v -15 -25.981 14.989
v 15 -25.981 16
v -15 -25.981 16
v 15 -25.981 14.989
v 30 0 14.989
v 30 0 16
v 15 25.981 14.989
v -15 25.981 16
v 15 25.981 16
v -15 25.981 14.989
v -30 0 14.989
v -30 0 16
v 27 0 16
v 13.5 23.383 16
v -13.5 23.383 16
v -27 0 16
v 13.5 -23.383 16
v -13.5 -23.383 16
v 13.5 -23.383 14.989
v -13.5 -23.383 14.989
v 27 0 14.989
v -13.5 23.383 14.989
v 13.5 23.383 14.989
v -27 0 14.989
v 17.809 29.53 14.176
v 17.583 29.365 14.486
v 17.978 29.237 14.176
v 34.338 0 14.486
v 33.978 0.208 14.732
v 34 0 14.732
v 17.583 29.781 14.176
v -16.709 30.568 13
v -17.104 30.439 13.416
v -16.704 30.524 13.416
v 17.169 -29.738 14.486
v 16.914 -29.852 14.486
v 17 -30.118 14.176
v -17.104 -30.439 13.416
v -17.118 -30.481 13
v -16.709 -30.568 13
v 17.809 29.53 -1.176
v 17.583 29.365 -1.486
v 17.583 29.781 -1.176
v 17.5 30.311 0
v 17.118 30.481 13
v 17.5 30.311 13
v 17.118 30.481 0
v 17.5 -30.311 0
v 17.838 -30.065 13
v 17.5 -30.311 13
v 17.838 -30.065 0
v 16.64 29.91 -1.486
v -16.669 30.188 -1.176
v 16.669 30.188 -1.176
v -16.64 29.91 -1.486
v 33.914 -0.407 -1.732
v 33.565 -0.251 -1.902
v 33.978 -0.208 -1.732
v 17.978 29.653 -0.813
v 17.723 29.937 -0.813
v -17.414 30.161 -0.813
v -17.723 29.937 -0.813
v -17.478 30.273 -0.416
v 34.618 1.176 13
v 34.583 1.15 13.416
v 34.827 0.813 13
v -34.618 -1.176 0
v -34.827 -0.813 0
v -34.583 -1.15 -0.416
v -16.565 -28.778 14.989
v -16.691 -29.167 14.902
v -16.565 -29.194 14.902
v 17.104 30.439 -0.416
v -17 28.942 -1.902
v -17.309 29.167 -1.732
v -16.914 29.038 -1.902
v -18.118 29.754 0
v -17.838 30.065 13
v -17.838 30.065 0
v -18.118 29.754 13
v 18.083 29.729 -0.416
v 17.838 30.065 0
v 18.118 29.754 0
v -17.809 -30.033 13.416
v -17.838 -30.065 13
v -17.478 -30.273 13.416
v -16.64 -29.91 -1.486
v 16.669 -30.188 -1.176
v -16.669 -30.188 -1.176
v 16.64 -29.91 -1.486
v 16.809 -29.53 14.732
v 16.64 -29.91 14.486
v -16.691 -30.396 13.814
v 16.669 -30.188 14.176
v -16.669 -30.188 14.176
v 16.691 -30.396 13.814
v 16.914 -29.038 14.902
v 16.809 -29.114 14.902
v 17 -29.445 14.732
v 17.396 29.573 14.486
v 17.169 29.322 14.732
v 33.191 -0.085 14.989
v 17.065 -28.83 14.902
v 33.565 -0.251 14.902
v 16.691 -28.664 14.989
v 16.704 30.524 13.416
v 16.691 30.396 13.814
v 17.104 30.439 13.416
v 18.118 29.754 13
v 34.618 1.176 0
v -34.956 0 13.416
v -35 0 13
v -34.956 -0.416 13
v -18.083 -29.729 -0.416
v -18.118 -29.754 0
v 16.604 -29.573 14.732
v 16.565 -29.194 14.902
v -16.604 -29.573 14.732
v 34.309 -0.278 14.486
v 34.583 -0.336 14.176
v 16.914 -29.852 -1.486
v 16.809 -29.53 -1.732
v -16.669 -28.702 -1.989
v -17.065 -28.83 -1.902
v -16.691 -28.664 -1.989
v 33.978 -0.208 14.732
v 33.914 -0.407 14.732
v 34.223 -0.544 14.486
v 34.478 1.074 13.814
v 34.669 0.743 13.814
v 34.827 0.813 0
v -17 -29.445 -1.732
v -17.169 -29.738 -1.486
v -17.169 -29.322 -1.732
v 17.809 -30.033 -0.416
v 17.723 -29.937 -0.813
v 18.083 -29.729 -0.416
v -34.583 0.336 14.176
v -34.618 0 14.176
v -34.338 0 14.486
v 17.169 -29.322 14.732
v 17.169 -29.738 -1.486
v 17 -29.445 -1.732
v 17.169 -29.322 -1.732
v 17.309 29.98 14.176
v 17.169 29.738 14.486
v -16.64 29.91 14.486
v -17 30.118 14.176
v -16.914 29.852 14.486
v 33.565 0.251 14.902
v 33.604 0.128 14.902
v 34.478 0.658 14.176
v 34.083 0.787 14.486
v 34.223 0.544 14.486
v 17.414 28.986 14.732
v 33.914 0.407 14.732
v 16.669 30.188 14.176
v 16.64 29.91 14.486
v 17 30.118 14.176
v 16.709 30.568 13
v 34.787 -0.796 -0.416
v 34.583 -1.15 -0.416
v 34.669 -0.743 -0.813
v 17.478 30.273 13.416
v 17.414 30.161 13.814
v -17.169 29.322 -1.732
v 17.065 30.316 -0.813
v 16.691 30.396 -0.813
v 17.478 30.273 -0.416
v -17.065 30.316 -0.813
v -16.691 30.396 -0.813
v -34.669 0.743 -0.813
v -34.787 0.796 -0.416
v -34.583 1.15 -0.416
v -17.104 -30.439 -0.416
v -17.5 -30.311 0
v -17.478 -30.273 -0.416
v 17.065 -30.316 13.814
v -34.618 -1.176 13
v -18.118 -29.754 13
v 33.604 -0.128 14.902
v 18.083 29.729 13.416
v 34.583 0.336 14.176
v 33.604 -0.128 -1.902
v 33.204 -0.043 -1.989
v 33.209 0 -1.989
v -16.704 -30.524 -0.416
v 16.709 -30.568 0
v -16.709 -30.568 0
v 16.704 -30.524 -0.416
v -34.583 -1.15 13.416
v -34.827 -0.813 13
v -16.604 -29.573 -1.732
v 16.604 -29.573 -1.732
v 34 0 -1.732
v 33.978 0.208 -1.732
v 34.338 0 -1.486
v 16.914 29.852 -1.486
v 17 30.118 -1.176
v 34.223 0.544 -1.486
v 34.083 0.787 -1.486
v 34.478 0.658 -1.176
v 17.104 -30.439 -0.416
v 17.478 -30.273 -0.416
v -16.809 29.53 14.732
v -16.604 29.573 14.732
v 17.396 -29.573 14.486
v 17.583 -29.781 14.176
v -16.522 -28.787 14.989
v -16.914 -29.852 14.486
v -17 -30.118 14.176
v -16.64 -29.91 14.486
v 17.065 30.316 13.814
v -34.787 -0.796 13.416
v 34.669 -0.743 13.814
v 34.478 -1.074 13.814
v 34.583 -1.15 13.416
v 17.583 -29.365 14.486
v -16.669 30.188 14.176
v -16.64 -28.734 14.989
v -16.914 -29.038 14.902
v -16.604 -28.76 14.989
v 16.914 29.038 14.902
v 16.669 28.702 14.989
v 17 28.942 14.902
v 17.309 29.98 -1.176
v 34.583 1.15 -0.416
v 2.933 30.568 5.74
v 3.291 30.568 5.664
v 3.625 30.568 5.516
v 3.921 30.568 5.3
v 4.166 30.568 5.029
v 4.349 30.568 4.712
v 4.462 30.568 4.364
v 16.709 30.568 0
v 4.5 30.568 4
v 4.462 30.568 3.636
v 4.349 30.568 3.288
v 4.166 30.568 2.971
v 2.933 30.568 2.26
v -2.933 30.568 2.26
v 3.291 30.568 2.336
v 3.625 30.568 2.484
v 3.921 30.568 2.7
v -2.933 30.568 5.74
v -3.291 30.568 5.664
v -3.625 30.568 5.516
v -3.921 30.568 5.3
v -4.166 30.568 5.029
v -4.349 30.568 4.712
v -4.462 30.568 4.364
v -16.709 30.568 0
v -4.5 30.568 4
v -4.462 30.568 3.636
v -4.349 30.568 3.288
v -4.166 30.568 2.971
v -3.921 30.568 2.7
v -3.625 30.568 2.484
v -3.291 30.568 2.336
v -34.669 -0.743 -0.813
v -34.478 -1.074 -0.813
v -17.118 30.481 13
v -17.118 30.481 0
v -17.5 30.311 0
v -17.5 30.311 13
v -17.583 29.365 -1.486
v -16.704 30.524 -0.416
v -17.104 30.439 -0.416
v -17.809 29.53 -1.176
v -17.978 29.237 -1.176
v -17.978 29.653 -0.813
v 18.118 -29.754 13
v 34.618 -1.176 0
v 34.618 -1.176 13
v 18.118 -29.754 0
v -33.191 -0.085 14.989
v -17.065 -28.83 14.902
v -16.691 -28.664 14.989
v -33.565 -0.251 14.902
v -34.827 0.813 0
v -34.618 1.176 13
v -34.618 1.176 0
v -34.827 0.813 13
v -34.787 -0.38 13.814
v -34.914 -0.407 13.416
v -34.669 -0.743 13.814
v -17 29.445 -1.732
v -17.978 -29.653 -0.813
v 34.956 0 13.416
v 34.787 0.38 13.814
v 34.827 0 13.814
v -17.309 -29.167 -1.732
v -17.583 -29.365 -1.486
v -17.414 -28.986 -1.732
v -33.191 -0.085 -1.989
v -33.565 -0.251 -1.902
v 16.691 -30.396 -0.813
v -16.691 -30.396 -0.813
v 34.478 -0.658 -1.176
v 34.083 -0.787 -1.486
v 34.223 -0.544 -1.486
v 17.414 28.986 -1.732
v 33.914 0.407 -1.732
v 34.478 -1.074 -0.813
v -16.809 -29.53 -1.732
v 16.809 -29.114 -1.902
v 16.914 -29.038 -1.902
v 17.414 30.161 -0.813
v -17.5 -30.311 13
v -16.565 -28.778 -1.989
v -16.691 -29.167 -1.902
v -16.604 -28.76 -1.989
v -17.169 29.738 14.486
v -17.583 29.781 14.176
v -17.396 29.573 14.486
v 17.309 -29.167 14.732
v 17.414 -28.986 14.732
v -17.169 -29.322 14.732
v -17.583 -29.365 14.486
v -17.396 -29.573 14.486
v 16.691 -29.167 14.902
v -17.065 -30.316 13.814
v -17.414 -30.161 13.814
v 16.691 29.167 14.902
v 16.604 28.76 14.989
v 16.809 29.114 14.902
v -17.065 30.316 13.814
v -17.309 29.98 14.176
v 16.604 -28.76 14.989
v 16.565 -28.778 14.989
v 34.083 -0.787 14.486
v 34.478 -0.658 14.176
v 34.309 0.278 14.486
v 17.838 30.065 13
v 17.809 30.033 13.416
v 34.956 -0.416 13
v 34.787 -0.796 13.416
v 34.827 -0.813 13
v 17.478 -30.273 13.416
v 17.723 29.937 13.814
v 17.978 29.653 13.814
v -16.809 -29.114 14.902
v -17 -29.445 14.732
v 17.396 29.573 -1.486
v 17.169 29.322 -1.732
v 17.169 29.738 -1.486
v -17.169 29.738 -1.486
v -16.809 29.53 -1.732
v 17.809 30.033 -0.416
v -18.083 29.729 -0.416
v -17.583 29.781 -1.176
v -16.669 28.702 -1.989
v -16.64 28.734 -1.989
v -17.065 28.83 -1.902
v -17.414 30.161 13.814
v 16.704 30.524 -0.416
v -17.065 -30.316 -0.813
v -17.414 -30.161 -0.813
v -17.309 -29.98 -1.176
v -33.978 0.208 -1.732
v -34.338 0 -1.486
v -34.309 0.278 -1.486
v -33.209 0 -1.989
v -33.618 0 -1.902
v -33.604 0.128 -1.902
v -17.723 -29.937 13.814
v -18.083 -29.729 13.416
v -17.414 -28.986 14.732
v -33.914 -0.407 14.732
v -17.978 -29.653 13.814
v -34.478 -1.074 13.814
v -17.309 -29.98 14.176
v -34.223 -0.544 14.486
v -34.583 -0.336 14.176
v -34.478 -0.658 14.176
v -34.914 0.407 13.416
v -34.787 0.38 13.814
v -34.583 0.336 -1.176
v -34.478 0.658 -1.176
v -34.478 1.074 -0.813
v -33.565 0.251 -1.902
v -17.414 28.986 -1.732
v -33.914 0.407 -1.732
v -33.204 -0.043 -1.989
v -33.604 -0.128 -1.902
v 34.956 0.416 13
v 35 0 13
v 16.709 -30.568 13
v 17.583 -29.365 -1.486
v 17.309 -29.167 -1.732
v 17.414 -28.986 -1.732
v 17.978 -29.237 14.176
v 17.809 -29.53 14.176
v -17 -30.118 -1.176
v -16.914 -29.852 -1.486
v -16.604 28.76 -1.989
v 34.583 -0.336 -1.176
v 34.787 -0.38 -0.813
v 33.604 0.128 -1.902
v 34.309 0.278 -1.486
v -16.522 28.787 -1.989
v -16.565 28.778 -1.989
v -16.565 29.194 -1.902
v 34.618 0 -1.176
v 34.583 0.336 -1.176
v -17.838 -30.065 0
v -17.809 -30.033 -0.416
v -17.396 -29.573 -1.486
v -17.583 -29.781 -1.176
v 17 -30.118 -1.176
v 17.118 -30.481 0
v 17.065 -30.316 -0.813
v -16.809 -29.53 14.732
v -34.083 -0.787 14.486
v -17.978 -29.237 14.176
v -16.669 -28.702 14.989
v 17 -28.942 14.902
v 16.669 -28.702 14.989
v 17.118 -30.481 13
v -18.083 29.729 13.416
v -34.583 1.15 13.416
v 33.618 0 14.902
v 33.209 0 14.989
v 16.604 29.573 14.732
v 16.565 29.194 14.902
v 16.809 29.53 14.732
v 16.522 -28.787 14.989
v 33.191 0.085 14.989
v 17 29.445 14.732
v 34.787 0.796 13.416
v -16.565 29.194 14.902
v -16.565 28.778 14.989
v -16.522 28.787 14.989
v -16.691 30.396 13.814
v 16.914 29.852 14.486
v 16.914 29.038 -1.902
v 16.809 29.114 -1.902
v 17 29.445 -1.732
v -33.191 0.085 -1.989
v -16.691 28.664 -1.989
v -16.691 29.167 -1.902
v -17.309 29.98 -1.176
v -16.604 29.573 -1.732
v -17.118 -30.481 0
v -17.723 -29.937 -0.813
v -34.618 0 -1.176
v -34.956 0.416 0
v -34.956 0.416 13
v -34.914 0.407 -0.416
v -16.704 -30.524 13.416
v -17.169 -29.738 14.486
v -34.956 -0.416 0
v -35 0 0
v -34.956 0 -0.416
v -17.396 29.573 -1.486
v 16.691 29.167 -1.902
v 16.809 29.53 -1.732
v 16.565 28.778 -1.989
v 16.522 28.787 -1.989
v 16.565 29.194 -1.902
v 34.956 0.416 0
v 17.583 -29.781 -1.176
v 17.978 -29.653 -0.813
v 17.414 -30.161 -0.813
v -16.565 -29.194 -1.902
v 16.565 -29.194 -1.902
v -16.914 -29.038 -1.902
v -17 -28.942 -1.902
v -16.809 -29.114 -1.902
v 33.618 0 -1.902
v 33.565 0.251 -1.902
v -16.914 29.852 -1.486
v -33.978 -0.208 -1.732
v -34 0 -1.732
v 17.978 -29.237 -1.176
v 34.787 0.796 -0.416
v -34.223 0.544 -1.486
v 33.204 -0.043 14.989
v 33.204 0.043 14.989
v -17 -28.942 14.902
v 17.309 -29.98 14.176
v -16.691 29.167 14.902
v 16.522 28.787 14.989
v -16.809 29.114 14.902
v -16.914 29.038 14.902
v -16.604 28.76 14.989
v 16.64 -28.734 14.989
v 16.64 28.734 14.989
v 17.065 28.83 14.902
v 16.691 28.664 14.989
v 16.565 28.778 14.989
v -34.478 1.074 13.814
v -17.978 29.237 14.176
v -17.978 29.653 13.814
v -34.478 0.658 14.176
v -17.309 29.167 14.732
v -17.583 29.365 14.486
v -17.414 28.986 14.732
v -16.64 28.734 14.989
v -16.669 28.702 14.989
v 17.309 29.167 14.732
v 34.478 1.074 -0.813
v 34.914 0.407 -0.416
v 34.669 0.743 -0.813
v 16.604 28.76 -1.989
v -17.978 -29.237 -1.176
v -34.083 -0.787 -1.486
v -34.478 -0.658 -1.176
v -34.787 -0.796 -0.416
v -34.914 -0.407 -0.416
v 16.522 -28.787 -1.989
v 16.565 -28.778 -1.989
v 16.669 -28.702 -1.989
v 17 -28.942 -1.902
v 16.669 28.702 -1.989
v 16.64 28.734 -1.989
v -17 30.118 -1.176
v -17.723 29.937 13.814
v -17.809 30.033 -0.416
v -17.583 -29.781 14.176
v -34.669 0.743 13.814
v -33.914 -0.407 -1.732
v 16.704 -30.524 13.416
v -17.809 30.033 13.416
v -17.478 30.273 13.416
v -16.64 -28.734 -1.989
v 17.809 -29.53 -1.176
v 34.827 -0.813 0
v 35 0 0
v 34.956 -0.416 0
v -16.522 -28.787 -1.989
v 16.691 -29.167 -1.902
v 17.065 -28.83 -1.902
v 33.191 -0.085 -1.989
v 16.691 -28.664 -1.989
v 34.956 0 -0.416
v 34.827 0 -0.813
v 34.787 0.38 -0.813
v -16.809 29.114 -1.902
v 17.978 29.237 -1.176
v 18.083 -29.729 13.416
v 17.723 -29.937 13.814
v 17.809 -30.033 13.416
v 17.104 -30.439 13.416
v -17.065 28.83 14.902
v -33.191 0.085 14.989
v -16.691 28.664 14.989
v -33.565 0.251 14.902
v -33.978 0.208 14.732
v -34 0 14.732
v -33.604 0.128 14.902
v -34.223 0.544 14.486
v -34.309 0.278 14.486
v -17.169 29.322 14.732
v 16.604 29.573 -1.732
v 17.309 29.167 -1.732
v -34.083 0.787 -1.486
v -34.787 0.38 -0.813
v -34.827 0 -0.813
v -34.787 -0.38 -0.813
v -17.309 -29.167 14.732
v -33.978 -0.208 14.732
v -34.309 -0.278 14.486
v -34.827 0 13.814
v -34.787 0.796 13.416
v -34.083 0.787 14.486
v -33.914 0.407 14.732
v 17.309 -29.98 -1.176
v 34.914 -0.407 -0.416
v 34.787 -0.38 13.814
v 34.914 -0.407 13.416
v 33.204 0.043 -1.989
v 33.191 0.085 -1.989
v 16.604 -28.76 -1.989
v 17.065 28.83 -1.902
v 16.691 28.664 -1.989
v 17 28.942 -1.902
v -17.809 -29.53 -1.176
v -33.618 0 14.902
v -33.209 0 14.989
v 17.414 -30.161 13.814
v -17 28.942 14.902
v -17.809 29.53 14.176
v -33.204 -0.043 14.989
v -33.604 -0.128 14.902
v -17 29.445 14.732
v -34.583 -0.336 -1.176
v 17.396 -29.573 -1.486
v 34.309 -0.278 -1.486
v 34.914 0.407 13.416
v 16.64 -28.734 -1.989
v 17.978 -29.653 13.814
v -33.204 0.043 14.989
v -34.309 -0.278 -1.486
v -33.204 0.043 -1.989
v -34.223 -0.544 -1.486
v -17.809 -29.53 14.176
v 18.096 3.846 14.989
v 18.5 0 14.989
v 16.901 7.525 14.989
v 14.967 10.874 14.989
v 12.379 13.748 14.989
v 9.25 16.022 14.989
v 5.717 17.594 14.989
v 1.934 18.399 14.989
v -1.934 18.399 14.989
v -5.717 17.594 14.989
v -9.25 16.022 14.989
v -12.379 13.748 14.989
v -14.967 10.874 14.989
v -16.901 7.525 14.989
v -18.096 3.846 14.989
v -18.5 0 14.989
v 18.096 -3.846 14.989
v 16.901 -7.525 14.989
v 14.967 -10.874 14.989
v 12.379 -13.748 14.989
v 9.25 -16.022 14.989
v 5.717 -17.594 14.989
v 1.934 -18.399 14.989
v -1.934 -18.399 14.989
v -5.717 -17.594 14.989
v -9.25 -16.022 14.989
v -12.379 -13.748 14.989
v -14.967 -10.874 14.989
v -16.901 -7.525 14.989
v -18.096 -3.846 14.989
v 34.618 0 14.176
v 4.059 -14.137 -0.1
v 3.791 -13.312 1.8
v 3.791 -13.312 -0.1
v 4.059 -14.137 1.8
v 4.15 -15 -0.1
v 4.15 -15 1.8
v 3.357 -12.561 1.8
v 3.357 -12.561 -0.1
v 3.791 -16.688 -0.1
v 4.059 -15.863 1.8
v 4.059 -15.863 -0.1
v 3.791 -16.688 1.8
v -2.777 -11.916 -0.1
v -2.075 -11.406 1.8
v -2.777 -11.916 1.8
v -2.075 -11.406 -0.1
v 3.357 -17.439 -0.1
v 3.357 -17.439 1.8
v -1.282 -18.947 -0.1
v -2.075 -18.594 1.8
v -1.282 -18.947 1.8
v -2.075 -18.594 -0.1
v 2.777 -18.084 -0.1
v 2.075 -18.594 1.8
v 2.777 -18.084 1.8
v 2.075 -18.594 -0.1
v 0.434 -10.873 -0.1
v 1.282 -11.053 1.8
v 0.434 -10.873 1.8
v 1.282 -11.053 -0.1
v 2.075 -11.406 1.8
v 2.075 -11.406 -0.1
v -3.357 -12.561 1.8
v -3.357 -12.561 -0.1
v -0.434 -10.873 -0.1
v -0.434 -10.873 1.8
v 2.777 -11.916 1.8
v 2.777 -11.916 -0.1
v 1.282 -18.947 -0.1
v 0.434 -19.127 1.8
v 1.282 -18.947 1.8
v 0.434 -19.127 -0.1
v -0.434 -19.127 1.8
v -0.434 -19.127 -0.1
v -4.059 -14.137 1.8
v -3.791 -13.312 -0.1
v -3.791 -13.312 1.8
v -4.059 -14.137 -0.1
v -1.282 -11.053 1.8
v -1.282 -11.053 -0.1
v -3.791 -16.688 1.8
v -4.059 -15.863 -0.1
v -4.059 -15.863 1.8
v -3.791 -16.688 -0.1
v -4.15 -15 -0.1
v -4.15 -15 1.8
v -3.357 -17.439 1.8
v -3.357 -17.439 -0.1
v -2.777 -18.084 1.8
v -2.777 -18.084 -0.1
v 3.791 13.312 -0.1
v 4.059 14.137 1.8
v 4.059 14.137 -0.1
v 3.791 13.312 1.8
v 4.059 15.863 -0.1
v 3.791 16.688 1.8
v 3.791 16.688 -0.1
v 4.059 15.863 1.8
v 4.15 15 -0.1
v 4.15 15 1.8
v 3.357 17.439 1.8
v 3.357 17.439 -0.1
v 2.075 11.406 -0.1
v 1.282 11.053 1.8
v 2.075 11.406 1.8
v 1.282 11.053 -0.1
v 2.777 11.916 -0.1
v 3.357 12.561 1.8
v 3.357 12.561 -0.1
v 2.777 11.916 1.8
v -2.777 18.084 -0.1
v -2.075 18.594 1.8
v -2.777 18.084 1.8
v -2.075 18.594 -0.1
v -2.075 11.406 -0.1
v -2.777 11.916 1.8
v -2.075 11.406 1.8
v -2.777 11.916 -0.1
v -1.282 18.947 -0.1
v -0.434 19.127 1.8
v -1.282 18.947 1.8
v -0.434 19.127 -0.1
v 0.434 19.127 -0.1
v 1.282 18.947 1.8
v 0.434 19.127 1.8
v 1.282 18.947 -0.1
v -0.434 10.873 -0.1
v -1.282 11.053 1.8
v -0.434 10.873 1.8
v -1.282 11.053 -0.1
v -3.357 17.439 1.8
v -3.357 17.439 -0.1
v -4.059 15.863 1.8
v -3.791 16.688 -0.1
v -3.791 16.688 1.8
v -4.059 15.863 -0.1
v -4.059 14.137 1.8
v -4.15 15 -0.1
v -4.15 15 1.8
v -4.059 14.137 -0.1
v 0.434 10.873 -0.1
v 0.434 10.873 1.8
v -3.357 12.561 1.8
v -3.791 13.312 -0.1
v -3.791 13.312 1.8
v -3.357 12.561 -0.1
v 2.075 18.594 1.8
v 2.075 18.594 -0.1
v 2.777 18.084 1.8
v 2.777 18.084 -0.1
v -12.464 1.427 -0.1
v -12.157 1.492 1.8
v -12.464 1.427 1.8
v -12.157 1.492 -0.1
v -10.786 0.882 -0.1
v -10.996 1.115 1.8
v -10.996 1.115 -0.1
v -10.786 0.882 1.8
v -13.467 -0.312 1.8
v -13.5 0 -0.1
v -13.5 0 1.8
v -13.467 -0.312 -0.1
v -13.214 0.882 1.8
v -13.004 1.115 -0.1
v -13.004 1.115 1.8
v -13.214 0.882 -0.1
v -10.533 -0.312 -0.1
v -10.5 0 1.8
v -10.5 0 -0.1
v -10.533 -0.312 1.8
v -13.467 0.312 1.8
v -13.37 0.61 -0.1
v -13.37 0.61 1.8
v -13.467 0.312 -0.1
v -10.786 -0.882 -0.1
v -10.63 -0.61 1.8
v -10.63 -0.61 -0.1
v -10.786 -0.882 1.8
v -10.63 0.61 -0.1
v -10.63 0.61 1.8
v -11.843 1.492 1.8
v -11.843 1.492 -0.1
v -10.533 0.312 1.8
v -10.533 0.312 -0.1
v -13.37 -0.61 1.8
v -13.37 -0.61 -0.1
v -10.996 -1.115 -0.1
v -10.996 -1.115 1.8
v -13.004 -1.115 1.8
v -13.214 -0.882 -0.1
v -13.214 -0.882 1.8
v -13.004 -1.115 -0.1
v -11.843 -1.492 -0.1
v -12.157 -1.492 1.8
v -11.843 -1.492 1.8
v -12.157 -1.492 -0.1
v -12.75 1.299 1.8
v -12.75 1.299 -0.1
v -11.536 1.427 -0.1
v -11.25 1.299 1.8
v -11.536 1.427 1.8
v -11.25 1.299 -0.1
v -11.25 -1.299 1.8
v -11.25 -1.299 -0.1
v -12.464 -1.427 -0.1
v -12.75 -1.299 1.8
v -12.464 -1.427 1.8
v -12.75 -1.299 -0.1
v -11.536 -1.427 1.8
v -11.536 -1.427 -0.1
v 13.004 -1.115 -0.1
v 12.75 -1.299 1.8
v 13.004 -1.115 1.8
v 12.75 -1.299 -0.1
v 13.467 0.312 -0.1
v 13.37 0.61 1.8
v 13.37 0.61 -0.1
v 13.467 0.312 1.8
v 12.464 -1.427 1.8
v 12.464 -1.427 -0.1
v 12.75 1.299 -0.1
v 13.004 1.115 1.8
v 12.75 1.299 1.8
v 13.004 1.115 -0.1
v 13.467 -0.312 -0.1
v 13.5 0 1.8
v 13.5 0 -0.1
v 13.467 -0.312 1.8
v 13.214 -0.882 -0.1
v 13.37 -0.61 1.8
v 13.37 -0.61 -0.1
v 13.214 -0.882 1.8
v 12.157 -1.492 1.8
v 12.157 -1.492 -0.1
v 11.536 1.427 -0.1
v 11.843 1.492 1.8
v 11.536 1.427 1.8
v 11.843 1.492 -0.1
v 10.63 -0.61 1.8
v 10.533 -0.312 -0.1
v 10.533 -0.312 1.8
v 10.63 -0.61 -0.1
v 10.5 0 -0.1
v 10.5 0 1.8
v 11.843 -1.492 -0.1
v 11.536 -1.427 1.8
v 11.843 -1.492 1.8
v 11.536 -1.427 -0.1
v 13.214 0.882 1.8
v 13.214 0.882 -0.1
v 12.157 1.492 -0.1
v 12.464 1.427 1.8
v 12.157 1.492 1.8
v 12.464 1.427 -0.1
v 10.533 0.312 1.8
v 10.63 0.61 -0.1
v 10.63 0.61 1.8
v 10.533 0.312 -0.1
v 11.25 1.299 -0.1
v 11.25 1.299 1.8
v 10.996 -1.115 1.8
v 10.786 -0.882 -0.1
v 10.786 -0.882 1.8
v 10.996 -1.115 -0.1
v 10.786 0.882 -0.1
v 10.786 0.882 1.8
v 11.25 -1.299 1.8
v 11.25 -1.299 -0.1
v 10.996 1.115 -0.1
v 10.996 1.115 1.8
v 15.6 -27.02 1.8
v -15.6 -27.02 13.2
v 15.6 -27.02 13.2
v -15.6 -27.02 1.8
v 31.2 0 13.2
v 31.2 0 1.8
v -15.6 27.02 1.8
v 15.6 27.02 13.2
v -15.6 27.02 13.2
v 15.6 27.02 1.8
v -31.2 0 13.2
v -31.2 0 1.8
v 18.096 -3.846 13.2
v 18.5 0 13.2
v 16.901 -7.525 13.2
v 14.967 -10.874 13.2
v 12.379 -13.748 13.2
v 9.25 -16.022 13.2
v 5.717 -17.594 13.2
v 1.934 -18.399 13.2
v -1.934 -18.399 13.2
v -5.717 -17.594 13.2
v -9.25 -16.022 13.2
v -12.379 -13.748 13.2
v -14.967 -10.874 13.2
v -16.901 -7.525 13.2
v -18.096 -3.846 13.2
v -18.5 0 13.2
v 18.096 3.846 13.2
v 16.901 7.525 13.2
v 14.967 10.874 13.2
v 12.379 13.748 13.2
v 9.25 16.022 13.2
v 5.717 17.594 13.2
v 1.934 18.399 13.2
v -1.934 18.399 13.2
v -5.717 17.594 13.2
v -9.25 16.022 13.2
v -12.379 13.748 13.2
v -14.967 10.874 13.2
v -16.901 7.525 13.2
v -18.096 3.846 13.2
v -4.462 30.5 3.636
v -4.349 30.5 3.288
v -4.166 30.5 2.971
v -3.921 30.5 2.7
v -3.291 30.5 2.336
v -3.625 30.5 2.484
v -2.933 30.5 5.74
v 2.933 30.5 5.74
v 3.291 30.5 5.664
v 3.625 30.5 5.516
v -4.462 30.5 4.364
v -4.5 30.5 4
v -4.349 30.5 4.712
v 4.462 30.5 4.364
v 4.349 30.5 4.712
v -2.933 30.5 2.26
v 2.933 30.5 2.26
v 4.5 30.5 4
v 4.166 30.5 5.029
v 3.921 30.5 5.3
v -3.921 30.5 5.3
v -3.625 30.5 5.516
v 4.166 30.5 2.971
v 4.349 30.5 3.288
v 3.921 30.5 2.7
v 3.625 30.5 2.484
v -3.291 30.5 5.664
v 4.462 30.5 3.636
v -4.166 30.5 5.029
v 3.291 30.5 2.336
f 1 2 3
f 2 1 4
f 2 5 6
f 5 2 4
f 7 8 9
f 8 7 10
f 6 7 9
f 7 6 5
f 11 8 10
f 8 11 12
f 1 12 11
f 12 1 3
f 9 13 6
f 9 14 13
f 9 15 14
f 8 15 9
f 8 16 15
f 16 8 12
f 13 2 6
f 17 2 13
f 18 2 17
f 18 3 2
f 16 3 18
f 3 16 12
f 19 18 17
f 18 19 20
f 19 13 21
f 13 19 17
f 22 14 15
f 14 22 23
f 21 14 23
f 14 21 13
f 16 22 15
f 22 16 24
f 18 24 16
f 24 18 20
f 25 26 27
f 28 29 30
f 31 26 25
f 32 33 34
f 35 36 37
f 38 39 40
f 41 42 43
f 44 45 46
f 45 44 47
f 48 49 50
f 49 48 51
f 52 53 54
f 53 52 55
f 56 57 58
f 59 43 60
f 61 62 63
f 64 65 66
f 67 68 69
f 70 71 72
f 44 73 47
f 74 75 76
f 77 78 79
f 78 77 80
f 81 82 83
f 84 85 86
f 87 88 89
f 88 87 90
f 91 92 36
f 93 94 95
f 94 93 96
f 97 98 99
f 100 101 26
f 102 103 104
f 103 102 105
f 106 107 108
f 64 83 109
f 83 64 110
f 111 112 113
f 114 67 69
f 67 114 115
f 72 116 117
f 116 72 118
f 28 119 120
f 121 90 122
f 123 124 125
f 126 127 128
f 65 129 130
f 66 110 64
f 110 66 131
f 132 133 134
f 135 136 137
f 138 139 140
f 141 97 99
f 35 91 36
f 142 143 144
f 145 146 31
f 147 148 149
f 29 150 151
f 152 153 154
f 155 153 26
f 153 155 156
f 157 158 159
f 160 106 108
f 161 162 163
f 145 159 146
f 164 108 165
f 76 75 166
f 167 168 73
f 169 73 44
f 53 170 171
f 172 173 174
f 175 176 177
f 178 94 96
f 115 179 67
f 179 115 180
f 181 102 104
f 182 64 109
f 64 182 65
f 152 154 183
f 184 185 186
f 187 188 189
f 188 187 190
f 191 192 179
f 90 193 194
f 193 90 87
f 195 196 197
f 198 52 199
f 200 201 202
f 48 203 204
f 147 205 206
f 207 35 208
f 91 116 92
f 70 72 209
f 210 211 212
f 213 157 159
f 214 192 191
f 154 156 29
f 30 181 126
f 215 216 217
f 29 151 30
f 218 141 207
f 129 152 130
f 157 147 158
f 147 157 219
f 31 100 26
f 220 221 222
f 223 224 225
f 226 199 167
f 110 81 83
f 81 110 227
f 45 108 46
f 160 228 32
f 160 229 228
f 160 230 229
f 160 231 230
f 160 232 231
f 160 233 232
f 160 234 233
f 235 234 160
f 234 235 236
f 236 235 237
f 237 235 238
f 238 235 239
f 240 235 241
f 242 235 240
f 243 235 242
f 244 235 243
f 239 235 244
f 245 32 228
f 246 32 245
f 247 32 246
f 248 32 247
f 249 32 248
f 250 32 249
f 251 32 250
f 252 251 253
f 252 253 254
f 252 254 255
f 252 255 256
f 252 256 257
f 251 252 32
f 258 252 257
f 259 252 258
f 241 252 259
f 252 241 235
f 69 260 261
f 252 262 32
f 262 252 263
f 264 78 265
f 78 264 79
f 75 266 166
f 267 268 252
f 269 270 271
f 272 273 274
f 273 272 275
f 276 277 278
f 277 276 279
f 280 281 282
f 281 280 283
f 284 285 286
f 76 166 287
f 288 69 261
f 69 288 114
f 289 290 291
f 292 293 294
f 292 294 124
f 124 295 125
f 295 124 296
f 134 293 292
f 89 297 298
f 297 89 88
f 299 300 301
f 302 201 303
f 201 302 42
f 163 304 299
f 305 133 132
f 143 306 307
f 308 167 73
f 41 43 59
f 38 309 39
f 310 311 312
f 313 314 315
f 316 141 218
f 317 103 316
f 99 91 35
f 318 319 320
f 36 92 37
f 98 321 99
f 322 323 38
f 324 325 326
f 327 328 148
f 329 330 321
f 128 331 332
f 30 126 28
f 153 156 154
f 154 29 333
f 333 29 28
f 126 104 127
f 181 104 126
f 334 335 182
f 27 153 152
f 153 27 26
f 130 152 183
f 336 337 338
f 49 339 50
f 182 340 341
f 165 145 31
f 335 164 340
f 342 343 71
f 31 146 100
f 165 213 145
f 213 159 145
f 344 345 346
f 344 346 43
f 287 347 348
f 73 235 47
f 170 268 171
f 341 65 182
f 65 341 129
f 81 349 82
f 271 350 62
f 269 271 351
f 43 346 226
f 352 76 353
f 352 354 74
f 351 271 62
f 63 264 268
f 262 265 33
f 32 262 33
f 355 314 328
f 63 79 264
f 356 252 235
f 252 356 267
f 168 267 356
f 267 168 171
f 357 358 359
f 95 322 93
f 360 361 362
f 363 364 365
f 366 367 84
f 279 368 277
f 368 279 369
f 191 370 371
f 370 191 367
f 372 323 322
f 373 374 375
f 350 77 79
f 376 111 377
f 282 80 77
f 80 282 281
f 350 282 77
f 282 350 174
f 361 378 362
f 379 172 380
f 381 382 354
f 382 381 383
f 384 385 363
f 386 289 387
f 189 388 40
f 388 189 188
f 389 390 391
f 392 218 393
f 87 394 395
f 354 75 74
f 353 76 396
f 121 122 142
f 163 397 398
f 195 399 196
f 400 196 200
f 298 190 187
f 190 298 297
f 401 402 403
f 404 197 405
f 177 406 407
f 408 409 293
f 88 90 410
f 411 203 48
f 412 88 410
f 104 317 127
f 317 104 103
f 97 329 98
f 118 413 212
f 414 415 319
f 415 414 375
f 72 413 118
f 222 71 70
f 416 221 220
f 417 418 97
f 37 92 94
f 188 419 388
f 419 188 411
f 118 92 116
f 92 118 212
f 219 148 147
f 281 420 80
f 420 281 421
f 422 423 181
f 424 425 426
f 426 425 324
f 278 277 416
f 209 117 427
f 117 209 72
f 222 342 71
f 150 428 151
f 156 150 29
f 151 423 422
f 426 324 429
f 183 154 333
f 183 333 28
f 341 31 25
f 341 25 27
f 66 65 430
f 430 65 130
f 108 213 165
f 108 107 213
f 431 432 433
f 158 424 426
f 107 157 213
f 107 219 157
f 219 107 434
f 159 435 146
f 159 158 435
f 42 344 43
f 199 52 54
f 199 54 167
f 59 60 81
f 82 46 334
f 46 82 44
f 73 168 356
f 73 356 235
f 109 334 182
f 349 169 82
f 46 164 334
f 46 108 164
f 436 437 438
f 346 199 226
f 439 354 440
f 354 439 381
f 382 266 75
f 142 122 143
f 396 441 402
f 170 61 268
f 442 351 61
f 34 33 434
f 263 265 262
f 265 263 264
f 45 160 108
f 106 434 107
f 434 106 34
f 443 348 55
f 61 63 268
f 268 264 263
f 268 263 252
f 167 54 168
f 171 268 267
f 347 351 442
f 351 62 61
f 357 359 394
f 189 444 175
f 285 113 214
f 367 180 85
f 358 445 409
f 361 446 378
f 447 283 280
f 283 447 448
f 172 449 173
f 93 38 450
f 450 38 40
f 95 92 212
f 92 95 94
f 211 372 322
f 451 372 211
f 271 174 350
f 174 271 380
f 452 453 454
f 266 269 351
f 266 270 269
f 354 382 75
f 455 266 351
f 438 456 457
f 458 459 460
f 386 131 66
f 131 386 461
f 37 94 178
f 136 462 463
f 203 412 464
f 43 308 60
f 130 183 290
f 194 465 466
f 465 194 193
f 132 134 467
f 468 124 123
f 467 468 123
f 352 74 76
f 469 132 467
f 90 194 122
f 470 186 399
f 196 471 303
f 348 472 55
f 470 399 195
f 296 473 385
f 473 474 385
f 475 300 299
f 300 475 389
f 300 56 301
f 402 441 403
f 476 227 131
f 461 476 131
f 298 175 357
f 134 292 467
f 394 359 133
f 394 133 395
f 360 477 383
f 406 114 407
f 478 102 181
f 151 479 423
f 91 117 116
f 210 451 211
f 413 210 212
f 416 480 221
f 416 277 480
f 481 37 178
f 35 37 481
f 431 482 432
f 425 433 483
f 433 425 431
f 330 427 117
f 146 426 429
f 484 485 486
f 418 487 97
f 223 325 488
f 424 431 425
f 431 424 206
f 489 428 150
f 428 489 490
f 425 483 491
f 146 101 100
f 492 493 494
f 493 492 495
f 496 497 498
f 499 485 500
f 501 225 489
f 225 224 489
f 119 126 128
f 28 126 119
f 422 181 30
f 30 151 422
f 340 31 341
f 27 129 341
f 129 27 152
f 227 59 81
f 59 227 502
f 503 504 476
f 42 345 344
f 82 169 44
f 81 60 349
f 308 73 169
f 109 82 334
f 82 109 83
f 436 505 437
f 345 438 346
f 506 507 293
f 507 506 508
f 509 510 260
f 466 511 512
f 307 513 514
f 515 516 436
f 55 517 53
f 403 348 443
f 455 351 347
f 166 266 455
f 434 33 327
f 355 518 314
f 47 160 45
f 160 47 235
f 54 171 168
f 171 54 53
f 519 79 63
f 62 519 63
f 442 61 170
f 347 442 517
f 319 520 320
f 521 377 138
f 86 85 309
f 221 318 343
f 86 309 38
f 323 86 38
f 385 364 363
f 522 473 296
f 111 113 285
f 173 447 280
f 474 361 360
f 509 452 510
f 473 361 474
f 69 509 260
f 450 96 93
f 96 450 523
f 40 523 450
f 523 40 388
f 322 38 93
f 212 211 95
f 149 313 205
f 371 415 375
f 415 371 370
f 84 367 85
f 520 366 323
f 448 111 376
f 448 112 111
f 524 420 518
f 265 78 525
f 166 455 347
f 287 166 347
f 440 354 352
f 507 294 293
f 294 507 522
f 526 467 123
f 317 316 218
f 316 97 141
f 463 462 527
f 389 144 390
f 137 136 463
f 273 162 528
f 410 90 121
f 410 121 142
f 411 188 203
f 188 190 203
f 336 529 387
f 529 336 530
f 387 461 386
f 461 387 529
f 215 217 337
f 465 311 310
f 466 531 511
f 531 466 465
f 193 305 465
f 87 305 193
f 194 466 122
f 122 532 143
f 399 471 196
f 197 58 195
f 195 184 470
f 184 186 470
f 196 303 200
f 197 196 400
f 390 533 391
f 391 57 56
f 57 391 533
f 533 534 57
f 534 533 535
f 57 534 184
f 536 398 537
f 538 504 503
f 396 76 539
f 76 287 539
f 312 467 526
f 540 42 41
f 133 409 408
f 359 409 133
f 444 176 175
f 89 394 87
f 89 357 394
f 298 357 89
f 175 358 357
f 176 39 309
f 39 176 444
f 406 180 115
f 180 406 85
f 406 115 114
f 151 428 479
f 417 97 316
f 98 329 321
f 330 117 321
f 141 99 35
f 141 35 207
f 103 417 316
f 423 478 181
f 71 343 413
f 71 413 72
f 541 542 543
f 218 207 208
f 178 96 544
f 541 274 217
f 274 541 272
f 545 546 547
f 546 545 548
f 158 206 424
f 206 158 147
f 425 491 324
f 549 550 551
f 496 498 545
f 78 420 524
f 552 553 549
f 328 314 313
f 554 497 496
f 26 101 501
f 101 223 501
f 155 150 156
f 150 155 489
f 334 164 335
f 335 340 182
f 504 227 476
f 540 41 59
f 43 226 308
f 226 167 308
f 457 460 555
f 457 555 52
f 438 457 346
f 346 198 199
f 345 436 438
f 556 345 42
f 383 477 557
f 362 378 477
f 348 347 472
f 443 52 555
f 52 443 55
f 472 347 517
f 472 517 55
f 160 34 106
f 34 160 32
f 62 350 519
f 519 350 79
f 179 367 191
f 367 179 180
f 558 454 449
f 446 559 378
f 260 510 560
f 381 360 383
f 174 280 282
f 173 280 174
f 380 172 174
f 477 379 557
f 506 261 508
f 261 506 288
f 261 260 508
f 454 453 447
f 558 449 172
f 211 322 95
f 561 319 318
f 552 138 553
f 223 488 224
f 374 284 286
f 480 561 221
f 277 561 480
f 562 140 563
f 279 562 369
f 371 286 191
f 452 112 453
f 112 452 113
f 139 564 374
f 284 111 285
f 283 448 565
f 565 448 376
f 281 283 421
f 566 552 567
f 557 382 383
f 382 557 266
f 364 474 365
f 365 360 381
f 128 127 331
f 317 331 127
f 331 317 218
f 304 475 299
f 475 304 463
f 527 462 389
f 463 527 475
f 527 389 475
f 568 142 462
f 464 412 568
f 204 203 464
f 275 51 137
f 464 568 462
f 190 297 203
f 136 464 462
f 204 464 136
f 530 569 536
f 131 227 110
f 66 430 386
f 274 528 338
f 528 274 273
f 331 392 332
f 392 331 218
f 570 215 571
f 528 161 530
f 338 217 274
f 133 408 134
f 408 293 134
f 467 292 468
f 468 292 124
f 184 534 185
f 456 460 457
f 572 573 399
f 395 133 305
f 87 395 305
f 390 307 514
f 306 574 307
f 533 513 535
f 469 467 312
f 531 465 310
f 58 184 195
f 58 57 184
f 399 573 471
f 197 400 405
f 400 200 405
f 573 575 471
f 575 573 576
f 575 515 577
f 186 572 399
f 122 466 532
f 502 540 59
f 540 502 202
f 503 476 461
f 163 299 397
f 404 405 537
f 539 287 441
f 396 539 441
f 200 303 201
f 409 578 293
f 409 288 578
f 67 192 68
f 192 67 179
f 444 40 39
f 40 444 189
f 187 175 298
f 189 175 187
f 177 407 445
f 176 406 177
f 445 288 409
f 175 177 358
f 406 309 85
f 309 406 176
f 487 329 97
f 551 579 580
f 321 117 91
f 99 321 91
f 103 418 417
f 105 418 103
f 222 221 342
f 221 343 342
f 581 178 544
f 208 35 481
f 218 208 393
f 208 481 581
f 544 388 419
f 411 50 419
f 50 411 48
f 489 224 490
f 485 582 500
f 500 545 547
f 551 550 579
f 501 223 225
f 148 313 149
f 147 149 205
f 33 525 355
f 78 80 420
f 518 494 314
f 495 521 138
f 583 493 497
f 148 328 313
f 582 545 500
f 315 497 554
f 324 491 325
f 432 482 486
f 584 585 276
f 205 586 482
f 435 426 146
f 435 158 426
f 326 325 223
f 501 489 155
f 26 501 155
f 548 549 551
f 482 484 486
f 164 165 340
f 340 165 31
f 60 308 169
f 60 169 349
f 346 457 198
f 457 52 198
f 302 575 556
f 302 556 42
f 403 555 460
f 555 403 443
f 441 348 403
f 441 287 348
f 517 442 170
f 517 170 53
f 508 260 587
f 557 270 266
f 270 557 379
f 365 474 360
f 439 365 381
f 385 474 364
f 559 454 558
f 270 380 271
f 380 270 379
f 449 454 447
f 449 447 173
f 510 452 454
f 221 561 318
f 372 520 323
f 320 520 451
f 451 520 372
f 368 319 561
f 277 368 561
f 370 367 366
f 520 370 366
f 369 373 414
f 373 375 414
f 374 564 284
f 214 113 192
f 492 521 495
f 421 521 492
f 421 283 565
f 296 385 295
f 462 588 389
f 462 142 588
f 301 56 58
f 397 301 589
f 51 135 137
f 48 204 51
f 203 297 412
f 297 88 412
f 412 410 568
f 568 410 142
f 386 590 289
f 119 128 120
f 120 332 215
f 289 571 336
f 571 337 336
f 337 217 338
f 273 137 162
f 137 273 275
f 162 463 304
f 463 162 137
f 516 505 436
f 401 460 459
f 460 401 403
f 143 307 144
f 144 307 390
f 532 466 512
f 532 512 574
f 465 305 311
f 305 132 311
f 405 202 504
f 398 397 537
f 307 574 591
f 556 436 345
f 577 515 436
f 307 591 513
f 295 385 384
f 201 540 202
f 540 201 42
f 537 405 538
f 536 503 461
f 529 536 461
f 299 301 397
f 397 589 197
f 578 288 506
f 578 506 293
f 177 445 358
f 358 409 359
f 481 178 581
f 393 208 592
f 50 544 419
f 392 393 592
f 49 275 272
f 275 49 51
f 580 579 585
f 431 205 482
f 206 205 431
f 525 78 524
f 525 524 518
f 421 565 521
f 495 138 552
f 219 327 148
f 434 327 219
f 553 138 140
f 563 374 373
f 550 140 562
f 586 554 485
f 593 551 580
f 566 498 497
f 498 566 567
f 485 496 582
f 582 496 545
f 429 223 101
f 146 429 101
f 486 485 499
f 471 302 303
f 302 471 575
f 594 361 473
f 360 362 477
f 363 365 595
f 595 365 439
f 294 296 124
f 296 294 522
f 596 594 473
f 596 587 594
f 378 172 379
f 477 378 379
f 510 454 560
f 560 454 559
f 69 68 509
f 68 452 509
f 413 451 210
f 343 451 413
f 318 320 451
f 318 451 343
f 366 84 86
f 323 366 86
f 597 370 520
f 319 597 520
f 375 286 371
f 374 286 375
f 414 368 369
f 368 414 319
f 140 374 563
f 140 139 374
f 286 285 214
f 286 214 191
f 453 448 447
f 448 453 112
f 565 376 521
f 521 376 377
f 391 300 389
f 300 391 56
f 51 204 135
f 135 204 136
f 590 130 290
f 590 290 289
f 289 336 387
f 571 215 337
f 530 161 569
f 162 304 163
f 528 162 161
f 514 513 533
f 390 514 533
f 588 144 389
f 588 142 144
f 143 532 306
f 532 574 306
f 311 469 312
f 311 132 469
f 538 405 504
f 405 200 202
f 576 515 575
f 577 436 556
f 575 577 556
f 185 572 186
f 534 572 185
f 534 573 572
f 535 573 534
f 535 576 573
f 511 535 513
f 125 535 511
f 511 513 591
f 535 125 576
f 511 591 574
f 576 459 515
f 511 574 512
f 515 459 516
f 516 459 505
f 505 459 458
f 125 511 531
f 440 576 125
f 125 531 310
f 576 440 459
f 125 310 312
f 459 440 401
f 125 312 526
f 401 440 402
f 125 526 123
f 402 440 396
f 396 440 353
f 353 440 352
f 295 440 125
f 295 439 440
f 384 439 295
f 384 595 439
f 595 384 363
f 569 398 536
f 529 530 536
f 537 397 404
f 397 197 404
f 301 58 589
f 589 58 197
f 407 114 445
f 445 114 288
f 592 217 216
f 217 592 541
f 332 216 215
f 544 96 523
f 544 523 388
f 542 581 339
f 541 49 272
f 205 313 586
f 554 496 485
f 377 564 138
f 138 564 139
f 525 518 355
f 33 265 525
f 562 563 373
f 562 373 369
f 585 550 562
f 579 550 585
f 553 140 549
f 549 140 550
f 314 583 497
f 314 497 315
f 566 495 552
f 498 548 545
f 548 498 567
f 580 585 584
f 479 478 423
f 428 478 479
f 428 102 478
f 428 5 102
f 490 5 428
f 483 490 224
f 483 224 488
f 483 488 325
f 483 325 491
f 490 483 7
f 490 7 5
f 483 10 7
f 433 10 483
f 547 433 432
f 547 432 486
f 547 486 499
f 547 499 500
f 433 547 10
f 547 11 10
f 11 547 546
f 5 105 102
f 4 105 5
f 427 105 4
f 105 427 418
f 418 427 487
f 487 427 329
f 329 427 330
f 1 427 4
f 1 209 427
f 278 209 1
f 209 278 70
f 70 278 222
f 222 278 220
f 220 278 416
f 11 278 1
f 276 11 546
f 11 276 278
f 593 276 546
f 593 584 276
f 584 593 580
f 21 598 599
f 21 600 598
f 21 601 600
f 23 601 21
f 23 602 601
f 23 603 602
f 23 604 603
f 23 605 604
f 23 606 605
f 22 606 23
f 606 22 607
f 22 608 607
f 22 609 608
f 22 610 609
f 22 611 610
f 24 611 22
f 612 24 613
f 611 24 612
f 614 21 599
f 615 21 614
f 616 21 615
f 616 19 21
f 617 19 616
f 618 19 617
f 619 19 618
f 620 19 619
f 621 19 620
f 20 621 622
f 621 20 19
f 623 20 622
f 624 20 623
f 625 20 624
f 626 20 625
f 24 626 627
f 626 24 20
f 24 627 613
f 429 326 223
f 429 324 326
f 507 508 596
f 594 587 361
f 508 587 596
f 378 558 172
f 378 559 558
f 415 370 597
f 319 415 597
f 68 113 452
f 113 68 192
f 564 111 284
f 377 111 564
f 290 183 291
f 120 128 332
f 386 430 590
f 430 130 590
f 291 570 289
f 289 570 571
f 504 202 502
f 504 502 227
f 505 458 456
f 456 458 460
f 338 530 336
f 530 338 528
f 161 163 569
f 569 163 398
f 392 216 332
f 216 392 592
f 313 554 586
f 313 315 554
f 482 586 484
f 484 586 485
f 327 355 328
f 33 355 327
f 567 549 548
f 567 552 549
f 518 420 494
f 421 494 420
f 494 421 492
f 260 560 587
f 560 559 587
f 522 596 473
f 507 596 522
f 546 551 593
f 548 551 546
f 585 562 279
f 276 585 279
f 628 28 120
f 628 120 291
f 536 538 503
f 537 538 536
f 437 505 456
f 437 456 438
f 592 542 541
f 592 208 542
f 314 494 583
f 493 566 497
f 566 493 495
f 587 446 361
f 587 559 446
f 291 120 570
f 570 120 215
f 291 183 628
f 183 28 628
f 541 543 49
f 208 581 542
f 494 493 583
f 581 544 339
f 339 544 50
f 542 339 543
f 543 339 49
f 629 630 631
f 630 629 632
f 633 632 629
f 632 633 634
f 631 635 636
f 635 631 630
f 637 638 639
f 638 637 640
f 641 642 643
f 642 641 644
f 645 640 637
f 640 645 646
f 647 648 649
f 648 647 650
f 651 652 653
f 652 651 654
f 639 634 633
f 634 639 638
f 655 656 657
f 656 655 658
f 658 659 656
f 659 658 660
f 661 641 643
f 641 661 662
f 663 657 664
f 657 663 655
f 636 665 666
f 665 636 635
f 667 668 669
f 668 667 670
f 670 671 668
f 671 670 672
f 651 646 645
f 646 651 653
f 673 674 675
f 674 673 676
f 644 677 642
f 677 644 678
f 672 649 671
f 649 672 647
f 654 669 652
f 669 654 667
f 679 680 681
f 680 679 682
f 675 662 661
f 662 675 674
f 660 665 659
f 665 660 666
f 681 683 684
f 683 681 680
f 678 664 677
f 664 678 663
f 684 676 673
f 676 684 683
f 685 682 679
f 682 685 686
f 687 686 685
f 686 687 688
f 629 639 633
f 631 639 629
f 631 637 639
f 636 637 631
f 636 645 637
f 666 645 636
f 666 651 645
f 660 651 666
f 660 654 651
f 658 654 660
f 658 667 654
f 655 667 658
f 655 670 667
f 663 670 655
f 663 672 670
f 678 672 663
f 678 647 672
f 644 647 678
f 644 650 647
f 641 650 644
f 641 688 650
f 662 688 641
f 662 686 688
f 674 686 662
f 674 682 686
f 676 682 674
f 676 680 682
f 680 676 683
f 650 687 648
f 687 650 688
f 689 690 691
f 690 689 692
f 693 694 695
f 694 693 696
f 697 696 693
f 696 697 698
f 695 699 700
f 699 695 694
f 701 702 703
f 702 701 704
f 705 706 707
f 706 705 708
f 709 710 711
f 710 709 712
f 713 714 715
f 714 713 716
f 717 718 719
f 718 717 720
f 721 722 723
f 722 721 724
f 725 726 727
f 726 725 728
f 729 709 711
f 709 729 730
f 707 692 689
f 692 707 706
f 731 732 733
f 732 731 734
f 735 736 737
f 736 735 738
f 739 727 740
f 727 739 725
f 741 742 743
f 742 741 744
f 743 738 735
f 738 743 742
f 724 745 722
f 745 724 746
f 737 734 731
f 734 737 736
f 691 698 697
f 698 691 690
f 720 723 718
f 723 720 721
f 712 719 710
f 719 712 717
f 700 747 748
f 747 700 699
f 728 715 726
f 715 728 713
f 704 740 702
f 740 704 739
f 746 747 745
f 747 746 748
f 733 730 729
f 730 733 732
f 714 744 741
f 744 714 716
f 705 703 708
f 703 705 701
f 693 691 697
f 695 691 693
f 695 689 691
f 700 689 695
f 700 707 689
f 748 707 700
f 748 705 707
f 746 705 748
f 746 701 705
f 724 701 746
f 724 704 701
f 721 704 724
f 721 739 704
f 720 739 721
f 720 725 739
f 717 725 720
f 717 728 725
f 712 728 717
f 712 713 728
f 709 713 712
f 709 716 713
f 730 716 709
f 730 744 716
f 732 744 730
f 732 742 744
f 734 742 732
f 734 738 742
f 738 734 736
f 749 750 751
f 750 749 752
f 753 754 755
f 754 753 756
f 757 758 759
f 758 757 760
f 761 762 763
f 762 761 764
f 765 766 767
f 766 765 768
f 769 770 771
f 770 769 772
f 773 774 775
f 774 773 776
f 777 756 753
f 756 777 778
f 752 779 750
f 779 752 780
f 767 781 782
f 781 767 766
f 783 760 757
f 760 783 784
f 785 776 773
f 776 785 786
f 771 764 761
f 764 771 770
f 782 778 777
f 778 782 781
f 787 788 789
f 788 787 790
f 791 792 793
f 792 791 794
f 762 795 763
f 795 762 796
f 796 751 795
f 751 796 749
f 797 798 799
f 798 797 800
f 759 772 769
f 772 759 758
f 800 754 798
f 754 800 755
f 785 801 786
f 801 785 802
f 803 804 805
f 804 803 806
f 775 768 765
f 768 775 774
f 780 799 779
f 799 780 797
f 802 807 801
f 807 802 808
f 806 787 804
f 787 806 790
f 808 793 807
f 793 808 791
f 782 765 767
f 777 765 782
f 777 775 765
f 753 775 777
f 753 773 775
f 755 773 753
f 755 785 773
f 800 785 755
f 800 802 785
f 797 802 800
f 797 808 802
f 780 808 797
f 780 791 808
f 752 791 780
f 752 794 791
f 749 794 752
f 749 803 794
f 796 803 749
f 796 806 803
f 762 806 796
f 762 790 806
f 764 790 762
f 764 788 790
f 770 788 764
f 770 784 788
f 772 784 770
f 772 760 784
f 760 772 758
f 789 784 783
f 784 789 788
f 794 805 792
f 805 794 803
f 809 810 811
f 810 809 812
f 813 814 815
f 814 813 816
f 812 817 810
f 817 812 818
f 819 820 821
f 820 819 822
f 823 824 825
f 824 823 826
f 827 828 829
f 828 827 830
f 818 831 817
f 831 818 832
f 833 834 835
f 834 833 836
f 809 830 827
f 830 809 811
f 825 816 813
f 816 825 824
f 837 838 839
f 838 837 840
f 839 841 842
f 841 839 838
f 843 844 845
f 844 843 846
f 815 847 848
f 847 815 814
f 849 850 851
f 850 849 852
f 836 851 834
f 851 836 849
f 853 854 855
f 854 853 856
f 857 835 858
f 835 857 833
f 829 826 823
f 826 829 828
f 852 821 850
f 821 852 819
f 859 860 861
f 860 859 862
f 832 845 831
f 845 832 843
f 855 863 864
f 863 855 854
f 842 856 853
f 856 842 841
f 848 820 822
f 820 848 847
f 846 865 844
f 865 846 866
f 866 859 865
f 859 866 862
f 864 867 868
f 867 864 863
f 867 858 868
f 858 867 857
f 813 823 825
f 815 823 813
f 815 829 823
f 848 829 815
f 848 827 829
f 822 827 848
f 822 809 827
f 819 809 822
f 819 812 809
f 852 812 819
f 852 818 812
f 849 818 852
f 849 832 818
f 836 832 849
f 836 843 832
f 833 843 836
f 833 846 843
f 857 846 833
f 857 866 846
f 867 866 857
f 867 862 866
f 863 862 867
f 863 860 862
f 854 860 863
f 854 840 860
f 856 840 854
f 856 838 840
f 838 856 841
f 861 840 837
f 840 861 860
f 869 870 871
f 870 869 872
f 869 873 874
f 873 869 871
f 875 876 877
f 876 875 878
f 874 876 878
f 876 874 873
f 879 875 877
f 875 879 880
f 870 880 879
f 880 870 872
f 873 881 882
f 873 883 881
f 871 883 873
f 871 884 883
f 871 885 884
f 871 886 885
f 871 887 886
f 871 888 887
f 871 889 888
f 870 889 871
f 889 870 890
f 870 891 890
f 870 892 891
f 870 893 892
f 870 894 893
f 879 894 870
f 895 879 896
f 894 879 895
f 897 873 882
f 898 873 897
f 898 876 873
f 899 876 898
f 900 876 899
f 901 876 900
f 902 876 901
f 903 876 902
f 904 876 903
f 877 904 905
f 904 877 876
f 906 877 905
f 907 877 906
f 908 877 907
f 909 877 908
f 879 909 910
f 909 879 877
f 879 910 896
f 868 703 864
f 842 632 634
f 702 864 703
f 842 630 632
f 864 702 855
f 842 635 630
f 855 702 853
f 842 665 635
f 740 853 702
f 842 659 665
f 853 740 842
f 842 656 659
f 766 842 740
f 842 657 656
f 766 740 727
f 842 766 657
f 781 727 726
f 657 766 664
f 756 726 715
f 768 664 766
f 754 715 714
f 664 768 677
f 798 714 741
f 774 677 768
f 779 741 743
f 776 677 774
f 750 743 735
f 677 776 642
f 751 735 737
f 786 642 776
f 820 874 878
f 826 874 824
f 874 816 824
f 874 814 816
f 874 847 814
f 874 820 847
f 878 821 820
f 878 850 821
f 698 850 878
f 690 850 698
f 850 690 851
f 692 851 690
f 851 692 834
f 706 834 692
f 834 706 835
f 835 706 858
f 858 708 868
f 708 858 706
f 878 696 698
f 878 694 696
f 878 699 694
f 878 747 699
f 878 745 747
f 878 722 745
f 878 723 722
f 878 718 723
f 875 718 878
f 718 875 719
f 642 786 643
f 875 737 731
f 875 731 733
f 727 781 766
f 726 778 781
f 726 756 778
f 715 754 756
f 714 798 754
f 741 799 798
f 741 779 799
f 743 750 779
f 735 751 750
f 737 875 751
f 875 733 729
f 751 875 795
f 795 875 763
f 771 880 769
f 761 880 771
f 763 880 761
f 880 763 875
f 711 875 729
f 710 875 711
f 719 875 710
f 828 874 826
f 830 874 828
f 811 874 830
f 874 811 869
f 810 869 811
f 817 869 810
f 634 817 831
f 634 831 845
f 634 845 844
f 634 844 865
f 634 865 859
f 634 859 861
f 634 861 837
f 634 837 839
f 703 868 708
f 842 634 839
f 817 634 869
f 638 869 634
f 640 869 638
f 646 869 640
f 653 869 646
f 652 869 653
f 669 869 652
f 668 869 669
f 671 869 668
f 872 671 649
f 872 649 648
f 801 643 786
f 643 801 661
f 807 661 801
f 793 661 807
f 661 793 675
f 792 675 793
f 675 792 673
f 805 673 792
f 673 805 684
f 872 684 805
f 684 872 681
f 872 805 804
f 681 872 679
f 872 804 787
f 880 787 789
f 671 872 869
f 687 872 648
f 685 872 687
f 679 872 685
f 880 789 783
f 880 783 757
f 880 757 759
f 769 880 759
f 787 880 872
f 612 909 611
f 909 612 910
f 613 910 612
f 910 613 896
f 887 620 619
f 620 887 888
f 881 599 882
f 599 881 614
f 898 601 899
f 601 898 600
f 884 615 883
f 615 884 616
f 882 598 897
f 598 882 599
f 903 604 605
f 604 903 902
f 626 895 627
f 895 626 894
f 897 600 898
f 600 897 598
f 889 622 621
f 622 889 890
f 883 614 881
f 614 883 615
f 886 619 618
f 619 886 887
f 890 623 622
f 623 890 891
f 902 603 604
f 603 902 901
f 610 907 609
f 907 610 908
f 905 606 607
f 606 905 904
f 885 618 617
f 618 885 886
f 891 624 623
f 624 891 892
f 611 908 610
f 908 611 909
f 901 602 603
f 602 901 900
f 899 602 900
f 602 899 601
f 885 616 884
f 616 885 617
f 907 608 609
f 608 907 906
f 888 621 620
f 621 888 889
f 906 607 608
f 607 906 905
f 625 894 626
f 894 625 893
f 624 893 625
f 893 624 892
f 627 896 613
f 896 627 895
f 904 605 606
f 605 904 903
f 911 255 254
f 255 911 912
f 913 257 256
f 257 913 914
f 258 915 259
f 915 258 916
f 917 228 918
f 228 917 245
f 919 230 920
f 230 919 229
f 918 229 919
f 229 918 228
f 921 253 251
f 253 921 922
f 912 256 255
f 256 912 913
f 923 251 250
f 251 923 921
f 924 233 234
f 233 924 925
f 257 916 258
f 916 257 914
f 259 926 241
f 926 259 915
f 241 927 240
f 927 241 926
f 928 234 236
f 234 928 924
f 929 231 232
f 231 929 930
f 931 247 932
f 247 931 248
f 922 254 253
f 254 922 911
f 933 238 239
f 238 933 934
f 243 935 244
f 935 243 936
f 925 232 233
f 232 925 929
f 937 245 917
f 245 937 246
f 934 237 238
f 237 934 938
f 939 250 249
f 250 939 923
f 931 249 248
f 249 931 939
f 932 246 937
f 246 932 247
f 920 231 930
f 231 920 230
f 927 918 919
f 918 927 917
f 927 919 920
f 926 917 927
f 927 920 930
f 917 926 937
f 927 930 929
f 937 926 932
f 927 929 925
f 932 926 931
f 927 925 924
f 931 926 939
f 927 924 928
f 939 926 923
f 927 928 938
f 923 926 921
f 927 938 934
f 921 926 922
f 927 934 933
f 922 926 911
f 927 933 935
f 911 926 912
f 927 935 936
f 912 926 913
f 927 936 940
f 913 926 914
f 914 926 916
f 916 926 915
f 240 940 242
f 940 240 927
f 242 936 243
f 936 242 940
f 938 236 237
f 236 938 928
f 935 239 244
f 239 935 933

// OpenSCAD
// RWC Energy Core - 方案A：六角盾牌（Hex Shield）
// 六角形外轮廓，多层结构，中心屏幕下沉凹槽
// 灵感：盾牌/勋章，层次感强
// 美羊羊🎀 设计

$fn = 30;

// === 硬件尺寸 ===
esp32_w = 25.5;  esp32_d = 18;  esp32_h = 8;
screen_round_d = 36;  // 1.28寸圆形LCD直径(含边框)
screen_rect_w = 27;  screen_rect_h = 27;  // 0.96寸OLED
battery_w = 30;  battery_d = 20;  battery_h = 5;
usbc_w = 9;  usbc_h = 3.5;
magnet_d = 8;  magnet_h = 3;  // 磁吸接口磁铁

// === 外壳参数 ===
hex_r = 35;       // 六角形外接圆半径
total_h = 15;     // 总厚度
wall = 1.8;       // 壁厚
bevel = 2;        // 倒角

// 六角形模块
module hex_prism(r, h) {
    cylinder(r=r, h=h, $fn=6);
}

// 主体
module body() {
    // 底层 - 大六角
    minkowski() {
        hex_prism(hex_r - bevel, total_h - bevel);
        sphere(r=bevel);
    }
}

// 中层装饰环（第二层六角，稍小，凸起）
module mid_ring() {
    translate([0, 0, total_h - 3])
        difference() {
            hex_prism(hex_r - 5, 4);
            translate([0, 0, -0.5])
                hex_prism(hex_r - 8, 5);
        }
}

// 屏幕凹槽（圆形LCD）
module screen_cutout_round() {
    translate([0, 0, total_h - 2.5])
        cylinder(d=screen_round_d + 1, h=5);
}

// 屏幕凹槽（方形OLED）- 备用
module screen_cutout_rect() {
    translate([-screen_rect_w/2 - 0.5, -screen_rect_h/2 - 0.5, total_h - 2.5])
        cube([screen_rect_w + 1, screen_rect_h + 1, 5]);
}

// 内腔
module cavity() {
    translate([0, 0, wall]) {
        // 主腔体
        hex_prism(hex_r - wall - bevel, total_h - wall * 2);
    }
}

// ESP32槽位
module esp32_slot() {
    translate([-esp32_w/2, -esp32_d/2, wall])
        cube([esp32_w, esp32_d, esp32_h + 1]);
}

// 电池槽位
module battery_slot() {
    translate([-battery_w/2, -hex_r/2 - battery_d/2 + 5, wall])
        cube([battery_w, battery_d, battery_h + 1]);
}

// USB-C开孔
module usbc_port() {
    translate([0, hex_r - wall, 4])
        rotate([90, 0, 0])
            hull() {
                translate([-(usbc_w/2 - usbc_h/2), 0, 0]) cylinder(d=usbc_h, h=wall*3, center=true);
                translate([(usbc_w/2 - usbc_h/2), 0, 0]) cylinder(d=usbc_h, h=wall*3, center=true);
            }
}

// 磁吸接口（底部）
module magnet_slot() {
    translate([0, 0, -0.1])
        cylinder(d=magnet_d + 0.3, h=magnet_h + 0.2);
}

// 背面夹子安装孔
module clip_holes() {
    for (x = [-12, 12]) {
        translate([x, 0, -0.1])
            cylinder(d=3, h=wall + 0.5);
    }
}

// === 组装 ===
difference() {
    union() {
        body();
        mid_ring();
    }
    cavity();
    screen_cutout_round();
    esp32_slot();
    battery_slot();
    usbc_port();
    // 底部磁铁x2
    for (y = [-15, 15]) {
        translate([0, y, 0]) magnet_slot();
    }
    clip_holes();
}
